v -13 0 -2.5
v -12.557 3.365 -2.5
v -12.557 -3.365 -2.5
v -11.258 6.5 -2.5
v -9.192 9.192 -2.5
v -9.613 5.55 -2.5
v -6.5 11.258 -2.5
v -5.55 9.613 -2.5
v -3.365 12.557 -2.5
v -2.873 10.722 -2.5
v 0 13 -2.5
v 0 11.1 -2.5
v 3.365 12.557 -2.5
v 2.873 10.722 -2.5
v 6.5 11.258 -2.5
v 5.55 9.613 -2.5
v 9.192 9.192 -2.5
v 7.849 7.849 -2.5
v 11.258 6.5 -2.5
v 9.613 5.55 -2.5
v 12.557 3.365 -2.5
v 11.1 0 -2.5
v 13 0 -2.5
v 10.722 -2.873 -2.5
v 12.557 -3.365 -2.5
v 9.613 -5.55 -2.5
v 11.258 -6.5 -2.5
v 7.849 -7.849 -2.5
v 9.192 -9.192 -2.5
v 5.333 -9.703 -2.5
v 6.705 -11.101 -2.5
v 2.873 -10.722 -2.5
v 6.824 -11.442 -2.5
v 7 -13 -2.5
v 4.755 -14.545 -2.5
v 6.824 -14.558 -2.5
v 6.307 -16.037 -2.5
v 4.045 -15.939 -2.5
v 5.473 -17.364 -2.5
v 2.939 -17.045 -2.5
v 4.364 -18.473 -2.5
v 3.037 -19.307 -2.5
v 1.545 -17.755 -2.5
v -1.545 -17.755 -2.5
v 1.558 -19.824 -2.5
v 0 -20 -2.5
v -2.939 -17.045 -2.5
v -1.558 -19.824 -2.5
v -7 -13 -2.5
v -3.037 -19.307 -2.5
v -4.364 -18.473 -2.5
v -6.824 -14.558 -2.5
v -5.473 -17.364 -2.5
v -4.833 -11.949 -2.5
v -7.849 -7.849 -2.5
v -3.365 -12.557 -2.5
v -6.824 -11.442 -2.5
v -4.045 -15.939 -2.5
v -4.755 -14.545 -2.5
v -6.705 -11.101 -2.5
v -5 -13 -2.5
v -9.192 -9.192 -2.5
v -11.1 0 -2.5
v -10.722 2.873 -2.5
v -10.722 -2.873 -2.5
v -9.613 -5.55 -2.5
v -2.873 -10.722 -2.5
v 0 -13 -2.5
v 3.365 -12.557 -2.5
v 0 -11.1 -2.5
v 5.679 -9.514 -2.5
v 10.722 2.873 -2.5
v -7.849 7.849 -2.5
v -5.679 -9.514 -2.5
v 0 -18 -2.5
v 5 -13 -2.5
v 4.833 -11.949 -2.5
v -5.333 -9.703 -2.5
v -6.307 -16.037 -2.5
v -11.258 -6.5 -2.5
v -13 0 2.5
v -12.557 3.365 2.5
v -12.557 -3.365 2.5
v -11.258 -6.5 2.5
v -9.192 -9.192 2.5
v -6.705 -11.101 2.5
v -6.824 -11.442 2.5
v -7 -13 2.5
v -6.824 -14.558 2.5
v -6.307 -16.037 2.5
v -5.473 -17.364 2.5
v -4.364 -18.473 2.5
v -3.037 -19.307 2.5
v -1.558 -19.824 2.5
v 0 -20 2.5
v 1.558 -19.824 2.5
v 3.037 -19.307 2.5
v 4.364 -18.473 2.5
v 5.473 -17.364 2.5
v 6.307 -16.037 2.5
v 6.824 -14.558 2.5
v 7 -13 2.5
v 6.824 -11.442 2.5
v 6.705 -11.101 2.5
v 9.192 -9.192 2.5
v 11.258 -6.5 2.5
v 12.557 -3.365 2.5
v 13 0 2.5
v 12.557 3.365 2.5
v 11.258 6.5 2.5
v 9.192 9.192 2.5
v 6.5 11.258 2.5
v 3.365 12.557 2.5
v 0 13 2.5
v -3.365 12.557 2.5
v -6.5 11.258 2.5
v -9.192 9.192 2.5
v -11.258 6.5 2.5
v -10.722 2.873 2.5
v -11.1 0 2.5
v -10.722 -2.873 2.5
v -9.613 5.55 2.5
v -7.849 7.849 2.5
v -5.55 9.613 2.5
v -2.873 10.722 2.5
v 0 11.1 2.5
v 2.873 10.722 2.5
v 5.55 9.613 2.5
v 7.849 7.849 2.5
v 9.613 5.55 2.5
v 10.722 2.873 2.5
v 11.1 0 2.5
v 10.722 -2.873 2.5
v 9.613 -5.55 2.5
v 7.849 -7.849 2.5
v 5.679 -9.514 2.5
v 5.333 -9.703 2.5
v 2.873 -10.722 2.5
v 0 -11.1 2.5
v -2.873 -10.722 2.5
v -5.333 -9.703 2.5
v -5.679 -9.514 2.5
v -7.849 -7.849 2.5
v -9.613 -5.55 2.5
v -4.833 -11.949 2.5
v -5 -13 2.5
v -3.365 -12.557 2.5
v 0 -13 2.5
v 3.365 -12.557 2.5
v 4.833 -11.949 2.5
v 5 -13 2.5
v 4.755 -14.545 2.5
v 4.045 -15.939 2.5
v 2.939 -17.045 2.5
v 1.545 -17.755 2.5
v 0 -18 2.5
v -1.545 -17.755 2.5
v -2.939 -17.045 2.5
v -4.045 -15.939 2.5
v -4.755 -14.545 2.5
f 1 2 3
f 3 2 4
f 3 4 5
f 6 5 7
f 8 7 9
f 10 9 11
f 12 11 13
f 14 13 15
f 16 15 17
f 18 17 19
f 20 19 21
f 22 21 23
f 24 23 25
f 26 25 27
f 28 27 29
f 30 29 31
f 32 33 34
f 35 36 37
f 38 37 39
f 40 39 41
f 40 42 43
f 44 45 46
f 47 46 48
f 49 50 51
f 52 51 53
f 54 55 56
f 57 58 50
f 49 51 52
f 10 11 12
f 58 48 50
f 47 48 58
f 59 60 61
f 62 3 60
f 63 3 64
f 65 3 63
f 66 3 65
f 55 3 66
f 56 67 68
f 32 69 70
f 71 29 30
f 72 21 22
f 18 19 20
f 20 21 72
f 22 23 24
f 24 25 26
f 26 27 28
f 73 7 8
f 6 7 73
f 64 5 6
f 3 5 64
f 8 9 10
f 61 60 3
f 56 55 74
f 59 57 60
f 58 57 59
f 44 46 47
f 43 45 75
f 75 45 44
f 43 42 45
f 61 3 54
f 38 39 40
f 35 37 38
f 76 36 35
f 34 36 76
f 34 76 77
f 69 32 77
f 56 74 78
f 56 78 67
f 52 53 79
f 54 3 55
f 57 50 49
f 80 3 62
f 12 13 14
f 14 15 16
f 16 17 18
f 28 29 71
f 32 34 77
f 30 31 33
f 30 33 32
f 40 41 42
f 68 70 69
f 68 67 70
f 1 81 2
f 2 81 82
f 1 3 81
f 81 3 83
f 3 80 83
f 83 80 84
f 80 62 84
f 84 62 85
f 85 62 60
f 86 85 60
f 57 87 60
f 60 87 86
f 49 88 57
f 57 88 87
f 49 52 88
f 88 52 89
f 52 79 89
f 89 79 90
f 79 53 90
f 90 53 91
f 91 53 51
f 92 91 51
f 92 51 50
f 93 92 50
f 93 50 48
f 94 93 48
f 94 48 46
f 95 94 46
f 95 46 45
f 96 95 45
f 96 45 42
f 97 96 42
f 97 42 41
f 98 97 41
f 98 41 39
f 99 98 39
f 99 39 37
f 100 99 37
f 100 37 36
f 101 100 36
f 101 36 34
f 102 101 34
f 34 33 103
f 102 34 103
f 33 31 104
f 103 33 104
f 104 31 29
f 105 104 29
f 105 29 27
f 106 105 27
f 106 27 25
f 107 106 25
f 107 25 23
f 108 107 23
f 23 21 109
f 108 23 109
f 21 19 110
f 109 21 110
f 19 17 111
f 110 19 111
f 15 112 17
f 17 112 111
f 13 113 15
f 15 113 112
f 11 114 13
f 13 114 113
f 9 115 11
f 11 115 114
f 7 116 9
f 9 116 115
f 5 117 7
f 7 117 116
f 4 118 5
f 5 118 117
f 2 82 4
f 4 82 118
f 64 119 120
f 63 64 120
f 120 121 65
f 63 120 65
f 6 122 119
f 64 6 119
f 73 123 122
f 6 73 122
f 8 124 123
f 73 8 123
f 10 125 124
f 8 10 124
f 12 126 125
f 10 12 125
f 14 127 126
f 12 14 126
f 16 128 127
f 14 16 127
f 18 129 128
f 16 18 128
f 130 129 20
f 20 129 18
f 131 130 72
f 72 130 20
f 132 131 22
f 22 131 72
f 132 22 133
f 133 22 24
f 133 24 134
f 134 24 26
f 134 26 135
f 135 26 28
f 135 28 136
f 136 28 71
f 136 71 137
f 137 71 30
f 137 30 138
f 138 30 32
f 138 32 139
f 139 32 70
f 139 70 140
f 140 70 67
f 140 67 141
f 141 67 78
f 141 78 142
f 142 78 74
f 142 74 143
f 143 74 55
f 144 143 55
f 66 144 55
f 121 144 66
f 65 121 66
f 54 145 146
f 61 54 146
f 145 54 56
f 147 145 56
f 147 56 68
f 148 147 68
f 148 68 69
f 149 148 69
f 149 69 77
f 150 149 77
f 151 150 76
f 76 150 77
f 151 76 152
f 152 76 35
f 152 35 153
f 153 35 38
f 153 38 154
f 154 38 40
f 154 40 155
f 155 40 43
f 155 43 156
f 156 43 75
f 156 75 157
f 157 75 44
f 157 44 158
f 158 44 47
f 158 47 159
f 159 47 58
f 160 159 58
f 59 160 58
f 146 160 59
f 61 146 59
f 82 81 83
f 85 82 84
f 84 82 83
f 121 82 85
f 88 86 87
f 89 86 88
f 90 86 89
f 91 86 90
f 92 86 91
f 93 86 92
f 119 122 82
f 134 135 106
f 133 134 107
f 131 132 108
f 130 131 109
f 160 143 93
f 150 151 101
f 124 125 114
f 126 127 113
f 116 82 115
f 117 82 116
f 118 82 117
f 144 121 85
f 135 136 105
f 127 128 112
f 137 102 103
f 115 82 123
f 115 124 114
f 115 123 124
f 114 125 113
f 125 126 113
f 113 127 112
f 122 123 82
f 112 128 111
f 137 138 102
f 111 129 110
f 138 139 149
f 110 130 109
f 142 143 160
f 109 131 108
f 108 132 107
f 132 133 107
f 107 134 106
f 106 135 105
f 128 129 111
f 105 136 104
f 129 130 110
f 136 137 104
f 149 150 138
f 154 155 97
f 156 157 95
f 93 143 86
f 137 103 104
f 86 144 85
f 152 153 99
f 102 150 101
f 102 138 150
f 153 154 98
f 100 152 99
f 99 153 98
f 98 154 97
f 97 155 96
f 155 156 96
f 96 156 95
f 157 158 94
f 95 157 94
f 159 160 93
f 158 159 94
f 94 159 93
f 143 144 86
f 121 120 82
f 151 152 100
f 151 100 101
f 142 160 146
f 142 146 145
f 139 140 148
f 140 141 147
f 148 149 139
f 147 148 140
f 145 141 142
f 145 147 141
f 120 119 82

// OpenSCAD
union() {
  difference() {
    cylinder(r=13,h=5, center=true, $fn=24);
    cylinder(r=11.1, h=5.5, center=true, $fn=24);
  }
  difference() {
    translate([0, -13, 0])
    cylinder(r=7,h=5, center=true, $fn=28);
    translate([0, -13, 0])
    cylinder(r=5, h=5.5, center=true, $fn=20);
    cylinder(r=11.1, h=5.5, center=true, $fn=44);
  }
}
